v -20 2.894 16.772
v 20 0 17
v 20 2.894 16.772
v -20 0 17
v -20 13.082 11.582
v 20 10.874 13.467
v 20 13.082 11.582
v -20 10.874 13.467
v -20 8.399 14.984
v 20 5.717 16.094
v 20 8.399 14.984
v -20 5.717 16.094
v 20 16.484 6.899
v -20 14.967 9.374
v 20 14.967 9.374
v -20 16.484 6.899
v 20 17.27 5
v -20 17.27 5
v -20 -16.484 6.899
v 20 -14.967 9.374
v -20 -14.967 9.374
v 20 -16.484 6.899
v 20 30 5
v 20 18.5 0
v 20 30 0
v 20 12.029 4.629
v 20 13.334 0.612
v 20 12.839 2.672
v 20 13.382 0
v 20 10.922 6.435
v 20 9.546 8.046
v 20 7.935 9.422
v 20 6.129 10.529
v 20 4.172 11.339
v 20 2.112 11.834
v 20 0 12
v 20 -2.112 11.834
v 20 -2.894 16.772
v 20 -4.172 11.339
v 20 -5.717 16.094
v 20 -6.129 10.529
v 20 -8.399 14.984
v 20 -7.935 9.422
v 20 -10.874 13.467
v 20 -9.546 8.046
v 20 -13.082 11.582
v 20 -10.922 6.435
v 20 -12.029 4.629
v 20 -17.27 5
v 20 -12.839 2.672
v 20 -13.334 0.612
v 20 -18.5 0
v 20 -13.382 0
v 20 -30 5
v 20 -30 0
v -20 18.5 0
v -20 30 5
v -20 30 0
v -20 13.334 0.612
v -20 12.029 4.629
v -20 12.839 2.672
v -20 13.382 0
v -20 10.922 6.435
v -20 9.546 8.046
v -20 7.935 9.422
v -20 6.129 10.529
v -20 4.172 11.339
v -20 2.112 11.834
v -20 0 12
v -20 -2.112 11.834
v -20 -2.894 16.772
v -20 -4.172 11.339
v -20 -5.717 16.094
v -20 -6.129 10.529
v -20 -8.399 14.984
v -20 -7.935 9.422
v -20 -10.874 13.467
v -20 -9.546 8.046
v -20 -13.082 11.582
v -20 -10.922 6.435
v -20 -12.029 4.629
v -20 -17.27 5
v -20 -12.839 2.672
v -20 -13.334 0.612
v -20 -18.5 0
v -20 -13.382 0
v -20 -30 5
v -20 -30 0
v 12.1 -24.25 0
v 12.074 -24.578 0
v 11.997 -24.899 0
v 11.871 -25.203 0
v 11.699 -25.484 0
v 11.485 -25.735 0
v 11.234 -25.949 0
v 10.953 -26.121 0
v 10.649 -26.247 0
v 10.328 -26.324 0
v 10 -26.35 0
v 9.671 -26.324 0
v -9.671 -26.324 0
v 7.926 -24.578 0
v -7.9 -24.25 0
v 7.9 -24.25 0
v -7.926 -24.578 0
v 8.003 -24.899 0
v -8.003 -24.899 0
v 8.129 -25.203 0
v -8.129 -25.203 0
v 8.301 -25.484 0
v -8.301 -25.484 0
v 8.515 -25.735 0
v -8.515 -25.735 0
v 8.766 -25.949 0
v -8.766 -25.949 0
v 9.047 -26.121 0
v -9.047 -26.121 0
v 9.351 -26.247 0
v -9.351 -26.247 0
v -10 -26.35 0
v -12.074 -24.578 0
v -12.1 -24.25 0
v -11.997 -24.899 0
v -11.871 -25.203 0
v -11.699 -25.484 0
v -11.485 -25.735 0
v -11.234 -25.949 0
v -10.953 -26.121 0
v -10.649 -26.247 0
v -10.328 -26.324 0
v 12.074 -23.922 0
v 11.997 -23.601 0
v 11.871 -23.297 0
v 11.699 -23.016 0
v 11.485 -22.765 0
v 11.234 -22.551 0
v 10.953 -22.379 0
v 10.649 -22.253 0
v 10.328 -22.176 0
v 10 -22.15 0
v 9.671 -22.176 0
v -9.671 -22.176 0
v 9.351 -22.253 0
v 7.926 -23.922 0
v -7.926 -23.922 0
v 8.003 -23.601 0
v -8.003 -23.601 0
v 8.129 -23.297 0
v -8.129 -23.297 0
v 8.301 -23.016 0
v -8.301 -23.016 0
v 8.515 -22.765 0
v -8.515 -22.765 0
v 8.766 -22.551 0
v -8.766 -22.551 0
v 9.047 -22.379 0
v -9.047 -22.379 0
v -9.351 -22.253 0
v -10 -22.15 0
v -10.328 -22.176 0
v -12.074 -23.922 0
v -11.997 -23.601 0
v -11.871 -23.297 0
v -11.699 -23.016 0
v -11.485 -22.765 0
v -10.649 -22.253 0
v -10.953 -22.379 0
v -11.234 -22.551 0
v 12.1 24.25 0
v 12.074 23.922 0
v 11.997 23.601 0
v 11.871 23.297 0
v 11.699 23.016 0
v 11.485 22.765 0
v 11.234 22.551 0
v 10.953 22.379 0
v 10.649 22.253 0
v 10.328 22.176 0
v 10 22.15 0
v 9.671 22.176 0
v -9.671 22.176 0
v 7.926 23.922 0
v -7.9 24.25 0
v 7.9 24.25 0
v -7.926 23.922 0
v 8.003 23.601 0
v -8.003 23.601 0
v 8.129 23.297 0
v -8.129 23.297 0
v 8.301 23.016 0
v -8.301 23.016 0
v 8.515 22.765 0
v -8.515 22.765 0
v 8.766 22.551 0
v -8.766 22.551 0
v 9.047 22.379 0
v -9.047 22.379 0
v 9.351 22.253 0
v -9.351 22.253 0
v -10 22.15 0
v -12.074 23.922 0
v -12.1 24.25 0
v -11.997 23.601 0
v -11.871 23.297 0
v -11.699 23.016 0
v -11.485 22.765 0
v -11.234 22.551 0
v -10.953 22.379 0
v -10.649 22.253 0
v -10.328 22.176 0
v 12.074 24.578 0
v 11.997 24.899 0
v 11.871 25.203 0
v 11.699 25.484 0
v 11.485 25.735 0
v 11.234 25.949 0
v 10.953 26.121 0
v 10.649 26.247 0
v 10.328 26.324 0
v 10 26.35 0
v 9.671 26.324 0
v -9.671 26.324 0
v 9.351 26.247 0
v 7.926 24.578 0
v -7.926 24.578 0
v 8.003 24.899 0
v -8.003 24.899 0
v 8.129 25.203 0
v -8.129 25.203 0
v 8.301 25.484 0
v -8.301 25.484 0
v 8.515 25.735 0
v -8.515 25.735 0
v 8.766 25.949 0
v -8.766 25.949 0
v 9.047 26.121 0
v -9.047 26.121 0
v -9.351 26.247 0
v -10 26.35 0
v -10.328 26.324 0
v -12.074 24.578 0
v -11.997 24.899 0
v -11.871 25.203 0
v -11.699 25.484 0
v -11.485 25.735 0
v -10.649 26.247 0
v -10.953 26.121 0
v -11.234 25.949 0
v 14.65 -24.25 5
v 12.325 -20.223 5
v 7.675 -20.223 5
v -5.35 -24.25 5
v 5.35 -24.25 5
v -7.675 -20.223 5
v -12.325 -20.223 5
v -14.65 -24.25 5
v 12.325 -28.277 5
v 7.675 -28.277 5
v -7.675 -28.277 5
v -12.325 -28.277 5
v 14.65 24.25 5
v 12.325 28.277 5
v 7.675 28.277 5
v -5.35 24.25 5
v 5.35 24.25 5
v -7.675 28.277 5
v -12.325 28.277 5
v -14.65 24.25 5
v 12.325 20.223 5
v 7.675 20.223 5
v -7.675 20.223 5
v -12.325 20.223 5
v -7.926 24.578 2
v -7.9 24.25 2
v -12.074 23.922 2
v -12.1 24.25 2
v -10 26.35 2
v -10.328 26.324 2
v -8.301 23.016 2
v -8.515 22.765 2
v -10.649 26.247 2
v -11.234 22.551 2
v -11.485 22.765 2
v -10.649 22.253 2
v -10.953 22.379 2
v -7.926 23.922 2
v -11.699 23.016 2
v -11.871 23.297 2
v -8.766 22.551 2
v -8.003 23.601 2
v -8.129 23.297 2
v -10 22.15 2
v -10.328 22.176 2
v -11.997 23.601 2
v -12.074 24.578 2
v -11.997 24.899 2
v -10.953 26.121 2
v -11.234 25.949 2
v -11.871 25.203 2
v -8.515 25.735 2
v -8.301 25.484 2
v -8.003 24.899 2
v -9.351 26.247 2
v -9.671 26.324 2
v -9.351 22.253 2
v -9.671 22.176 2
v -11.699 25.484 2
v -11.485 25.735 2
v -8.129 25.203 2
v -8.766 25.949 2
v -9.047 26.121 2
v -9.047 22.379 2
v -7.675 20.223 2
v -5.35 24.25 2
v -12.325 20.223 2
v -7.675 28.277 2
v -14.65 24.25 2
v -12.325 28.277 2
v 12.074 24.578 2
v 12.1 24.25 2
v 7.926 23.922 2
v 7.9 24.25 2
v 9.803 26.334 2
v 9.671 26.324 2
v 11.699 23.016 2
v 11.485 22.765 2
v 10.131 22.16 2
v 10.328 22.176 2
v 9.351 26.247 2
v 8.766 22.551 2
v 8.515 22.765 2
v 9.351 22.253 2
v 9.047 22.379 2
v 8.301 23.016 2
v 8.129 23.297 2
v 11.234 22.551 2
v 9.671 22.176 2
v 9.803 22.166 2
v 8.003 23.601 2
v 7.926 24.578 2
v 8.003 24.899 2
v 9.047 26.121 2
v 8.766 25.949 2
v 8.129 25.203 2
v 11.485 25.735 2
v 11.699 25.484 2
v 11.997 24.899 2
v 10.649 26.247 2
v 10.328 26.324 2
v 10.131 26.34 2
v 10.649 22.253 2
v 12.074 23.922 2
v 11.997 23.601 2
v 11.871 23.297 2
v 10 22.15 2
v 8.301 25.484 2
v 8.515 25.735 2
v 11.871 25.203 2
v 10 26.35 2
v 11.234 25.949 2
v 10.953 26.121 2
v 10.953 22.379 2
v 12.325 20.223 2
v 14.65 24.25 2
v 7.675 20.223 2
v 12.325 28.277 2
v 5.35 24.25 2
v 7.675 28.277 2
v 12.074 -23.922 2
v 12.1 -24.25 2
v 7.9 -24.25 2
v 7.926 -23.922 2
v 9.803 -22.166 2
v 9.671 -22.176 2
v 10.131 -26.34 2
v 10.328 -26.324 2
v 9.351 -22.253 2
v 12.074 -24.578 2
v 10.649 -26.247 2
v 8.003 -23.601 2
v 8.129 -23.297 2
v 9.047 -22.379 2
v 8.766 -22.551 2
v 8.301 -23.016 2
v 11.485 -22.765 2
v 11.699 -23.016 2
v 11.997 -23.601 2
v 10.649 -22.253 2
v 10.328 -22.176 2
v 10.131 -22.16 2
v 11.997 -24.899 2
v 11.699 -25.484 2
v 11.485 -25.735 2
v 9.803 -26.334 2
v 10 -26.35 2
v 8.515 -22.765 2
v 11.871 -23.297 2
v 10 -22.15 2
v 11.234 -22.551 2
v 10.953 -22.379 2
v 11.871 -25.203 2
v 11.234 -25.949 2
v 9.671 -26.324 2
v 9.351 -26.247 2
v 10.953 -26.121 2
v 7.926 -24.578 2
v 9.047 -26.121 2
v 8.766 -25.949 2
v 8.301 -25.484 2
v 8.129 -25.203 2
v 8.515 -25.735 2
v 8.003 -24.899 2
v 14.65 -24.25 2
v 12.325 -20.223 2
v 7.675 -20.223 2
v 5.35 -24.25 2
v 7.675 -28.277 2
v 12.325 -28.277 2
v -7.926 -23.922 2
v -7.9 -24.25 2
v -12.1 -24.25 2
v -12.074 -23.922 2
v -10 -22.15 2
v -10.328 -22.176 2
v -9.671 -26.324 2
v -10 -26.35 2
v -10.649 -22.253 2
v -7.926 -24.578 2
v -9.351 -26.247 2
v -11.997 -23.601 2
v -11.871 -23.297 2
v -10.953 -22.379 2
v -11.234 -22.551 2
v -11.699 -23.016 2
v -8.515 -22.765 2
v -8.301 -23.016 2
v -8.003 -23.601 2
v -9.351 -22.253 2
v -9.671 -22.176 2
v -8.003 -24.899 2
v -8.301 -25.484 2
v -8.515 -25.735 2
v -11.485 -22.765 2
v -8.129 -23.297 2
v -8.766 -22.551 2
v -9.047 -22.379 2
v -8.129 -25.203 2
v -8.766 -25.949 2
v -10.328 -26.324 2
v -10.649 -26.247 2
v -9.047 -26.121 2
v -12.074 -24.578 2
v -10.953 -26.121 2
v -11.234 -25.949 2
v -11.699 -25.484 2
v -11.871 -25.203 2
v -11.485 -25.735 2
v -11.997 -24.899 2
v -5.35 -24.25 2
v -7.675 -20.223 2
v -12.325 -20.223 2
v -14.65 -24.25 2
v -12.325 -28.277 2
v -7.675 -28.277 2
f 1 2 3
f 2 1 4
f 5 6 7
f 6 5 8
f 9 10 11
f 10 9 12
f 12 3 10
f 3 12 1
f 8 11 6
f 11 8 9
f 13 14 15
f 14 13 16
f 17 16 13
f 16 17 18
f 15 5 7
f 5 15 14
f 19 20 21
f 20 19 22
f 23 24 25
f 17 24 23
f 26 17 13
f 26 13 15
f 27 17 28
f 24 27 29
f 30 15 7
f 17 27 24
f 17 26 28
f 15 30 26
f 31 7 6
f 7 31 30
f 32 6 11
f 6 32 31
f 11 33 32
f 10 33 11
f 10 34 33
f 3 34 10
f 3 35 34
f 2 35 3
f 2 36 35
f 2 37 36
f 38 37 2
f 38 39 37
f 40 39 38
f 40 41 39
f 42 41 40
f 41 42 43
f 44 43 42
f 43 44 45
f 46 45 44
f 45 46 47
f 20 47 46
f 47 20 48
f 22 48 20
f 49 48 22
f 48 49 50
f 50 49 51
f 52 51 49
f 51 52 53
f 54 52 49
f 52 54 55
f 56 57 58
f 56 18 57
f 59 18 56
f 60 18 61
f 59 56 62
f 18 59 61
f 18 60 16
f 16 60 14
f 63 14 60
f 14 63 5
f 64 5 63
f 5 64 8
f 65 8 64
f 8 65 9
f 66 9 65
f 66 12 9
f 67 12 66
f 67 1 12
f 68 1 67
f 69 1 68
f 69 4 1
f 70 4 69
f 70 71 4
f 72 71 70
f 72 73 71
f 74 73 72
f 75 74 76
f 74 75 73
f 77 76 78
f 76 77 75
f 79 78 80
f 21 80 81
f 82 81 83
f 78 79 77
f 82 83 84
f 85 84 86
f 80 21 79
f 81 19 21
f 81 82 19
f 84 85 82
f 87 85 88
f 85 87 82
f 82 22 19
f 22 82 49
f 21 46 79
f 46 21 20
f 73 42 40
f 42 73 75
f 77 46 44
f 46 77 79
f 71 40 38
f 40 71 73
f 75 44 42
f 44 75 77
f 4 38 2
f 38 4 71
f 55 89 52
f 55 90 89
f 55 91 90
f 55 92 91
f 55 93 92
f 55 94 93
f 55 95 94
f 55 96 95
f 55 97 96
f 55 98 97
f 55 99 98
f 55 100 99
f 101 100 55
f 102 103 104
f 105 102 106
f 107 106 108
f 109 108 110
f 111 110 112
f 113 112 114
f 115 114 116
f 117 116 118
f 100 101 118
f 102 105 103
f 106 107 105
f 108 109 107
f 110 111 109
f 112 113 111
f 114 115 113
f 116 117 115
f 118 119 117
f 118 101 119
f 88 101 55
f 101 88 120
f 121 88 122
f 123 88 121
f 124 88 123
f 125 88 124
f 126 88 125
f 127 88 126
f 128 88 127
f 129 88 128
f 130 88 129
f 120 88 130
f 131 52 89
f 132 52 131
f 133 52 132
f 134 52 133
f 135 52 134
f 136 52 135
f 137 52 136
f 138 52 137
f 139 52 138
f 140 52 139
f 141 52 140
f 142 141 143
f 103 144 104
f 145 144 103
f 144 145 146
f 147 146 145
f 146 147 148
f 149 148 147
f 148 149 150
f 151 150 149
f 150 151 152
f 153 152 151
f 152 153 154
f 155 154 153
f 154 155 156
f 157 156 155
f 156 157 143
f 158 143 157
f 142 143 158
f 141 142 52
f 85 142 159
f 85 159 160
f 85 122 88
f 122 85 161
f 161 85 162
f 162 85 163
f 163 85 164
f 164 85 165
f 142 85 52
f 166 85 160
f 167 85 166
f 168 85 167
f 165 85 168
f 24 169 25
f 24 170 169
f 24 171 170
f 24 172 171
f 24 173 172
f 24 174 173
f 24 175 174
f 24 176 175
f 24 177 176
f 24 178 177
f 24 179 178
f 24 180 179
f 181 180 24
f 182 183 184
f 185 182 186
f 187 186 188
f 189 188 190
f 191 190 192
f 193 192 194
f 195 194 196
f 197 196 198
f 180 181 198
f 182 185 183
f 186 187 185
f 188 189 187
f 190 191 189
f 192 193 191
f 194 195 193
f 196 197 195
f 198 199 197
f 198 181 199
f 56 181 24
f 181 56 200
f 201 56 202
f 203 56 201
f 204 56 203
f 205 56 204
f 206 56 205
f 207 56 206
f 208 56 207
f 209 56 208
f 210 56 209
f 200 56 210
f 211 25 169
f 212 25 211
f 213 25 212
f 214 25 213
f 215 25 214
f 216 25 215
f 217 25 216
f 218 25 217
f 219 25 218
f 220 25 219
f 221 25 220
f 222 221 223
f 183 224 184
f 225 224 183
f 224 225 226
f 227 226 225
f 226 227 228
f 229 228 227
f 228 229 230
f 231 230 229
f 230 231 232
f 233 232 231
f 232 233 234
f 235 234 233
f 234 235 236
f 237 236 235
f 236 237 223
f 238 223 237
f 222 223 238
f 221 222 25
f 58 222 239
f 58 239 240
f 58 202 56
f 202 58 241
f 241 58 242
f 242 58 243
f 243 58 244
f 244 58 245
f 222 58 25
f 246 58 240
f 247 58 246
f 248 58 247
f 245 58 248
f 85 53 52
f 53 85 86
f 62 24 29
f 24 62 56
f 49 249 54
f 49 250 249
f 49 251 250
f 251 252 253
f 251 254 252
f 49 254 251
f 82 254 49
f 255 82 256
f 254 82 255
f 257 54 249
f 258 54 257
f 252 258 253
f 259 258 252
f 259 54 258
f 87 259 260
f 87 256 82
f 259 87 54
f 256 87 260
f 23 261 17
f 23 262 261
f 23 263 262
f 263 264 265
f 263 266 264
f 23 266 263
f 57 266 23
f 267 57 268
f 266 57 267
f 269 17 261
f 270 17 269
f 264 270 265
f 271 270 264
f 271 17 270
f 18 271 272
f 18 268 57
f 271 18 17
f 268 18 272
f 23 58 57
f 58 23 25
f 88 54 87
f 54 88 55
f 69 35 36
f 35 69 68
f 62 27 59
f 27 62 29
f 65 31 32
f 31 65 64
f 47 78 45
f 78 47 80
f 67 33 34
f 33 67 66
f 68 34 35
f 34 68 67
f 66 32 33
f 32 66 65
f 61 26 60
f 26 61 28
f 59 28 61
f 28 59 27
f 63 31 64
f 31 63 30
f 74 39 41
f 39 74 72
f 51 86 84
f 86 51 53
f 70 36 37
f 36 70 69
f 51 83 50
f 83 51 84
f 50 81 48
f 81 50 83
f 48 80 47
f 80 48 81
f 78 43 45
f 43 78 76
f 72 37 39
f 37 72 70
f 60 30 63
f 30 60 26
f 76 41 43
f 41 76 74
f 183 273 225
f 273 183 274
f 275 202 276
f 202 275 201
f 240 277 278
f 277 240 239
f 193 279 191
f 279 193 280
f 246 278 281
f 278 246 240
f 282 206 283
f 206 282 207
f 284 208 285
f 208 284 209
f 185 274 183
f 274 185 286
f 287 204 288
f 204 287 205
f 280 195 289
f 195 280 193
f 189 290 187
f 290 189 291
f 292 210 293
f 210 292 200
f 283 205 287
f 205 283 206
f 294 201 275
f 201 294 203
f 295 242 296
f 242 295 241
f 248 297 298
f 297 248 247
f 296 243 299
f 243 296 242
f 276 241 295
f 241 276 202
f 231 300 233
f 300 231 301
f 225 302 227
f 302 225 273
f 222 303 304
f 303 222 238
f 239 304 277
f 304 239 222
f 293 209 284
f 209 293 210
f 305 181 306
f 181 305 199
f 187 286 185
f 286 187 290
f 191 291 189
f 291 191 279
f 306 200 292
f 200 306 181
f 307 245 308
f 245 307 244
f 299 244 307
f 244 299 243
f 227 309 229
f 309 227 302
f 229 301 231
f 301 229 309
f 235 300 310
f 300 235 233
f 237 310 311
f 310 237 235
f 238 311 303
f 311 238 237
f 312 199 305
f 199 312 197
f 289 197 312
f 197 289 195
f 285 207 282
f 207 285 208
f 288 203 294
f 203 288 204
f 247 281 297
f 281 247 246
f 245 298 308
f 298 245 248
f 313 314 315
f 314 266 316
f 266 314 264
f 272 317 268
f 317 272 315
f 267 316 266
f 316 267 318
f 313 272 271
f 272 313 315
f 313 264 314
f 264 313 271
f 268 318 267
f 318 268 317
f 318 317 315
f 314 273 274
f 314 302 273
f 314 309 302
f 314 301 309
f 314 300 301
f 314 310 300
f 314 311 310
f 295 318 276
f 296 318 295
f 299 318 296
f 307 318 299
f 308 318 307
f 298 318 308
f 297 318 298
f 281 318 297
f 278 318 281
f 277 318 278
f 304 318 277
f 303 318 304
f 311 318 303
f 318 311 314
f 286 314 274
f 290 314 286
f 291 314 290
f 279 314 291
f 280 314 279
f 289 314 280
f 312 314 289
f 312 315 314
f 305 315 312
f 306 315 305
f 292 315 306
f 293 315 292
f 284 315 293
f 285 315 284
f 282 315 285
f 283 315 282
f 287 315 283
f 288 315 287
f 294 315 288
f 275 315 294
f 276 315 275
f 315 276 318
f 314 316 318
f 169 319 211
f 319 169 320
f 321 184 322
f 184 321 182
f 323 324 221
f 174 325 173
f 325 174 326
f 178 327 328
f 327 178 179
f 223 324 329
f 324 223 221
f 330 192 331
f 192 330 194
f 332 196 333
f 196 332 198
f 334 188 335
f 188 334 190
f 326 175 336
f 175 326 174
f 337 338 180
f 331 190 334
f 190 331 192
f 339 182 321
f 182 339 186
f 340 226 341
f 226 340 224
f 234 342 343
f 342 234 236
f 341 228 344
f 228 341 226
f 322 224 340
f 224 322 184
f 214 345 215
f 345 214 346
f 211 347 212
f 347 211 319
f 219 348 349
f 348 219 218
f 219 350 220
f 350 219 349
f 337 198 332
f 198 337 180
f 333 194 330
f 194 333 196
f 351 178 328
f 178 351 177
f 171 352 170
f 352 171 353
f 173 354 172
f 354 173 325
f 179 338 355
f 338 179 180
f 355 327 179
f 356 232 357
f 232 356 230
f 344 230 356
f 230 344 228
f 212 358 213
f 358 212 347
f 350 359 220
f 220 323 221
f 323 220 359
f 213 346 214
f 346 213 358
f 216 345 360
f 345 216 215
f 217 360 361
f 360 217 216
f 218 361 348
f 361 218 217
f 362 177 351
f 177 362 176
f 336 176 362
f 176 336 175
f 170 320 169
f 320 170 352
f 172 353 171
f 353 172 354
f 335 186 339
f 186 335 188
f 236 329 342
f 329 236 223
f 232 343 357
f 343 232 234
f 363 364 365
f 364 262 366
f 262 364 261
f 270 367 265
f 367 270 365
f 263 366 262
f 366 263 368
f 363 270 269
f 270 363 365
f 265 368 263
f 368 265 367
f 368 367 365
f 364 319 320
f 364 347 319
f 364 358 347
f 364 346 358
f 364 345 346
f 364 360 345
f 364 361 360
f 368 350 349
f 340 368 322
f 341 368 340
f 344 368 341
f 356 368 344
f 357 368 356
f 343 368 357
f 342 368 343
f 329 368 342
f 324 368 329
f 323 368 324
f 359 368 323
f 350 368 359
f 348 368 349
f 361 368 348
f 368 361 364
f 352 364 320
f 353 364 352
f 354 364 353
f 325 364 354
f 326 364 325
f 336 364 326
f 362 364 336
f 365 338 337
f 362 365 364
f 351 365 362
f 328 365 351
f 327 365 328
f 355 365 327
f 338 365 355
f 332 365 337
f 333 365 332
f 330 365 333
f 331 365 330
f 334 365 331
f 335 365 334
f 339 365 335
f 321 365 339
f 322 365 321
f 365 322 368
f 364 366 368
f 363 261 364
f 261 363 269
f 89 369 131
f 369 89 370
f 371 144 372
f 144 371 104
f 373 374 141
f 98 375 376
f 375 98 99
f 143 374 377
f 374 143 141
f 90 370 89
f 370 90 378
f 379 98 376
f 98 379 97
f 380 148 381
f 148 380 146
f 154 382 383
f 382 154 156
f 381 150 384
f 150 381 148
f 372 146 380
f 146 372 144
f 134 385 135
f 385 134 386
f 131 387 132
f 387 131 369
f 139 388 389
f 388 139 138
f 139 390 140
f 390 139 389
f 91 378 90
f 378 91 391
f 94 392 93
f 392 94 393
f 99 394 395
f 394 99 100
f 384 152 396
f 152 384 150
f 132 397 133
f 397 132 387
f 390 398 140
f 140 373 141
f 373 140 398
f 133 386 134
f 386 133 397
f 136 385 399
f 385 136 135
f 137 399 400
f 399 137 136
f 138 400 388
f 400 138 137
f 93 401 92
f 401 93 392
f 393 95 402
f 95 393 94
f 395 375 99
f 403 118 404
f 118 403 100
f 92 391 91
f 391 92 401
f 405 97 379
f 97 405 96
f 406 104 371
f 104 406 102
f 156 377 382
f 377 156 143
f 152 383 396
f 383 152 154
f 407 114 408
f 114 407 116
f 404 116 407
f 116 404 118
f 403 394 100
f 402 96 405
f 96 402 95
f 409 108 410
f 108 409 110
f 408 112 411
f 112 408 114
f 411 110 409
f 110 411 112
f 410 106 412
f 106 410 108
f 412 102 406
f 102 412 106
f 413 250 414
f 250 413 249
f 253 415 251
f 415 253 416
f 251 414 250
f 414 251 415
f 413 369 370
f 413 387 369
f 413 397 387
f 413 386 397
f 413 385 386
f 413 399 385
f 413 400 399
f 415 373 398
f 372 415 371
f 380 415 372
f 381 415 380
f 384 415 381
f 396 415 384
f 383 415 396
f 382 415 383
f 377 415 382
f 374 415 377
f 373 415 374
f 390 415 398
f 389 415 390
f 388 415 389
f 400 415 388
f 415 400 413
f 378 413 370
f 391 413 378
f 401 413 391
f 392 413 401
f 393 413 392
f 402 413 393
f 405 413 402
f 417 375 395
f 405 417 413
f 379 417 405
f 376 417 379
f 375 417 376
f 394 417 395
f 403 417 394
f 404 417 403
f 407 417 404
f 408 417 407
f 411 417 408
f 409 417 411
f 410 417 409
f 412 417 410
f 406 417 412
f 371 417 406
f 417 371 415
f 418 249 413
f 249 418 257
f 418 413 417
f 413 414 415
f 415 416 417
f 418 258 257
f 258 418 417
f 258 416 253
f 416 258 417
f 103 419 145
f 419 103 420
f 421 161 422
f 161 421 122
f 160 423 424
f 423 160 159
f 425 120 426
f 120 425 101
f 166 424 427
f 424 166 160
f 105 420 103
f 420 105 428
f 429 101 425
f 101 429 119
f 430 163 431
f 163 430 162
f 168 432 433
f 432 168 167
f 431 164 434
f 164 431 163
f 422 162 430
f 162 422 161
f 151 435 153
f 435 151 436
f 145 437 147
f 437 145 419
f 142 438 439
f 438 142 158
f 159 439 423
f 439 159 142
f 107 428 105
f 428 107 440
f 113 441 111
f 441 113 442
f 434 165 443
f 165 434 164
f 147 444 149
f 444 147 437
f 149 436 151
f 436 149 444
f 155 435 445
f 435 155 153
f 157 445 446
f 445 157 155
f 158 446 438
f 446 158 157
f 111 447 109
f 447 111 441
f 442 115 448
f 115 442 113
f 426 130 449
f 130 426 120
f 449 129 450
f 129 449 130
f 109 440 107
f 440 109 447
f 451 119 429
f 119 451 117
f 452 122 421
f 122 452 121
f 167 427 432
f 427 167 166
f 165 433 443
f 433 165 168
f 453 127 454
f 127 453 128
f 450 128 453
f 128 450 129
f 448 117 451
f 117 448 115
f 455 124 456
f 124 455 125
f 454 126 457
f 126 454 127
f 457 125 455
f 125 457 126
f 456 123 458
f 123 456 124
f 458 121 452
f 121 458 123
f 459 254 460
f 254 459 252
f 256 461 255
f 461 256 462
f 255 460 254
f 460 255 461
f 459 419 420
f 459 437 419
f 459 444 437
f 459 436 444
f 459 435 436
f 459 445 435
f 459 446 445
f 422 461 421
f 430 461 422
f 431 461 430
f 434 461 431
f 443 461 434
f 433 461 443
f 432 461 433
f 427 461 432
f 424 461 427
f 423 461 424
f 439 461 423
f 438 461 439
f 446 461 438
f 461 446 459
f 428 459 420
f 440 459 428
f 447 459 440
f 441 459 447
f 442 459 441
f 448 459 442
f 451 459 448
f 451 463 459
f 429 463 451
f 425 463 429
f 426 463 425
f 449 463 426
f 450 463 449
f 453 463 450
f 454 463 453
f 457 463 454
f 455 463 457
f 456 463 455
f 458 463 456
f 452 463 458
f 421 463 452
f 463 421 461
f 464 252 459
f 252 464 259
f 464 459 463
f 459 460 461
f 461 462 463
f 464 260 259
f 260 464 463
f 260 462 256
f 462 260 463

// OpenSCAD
// file: ../SRC/ISLHOLDER01A_D02.scad
$fn=40; // model faces resolution.
include <../configuration.scad>


//Drzak na sloup - cast bez drzaku anemometru
module ISLHOLDER01A_D02(){
	
difference()
    {
    union()
        {
        //základní válec
        cylinder(h=D02_vyska_uchytky,r=(D02_prumer_obruby+2*D02_sila_materialu)/2,center=true);
		//úchytové plošky		
        translate([D02_dotahova_vzdalenost+D02_sila_materialu/2,0,0]){cube([D02_sila_materialu,D02_delka_celeho_uchytu,D02_vyska_uchytky],center=true);}
		}
    
    //válec na odečet
    cylinder(h=D02_vyska_uchytky+0.01,r=D02_prumer_obruby/2,center=true);     
	        
    //kvádr na odecet
	translate([D02_dotahova_vzdalenost-(D02_prumer_obruby+2*D02_sila_materialu)/2,0,0]){cube([D02_prumer_obruby+2*D02_sila_materialu,D02_prumer_obruby+2*D02_sila_materialu,D02_vyska_uchytky+0.01],center=true);}
		
	//otvory na sroub
	translate([D02_dotahova_vzdalenost,(D02_delka_celeho_uchytu/2-D02_prumer_obruby/2-D02_sila_materialu)/2+D02_prumer_obruby/2+D02_sila_materialu,D02_vyska_uchytky/4]){rotate([0,90,0]){cylinder(h=D02_sila_materialu+0.01,r=D02_prumer_uchytneho_sroubu/2);}}
    
     //drzak matky
    translate([D02_dotahova_vzdalenost+D02_sila_materialu-D02_vyska_matky,(D02_delka_celeho_uchytu/2-D02_prumer_obruby/2-D02_sila_materialu)/2+D02_prumer_obruby/2+D02_sila_materialu,D02_vyska_uchytky/4]){rotate([0,90,0]){ cylinder (h = D02_vyska_matky+0.01, r= (D02_sirka_matky+0.2)/2, $fn=6);}}
   
     
        
    translate([D02_dotahova_vzdalenost,(D02_delka_celeho_uchytu/2-D02_prumer_obruby/2-D02_sila_materialu)/2+D02_prumer_obruby/2+D02_sila_materialu,-D02_vyska_uchytky/4]){rotate([0,90,0]){cylinder(h=D02_sila_materialu+0.01,r=D02_prumer_uchytneho_sroubu/2);}}
    
     //drzak matky
    translate([D02_dotahova_vzdalenost+D02_sila_materialu-D02_vyska_matky,(D02_delka_celeho_uchytu/2-D02_prumer_obruby/2-D02_sila_materialu)/2+D02_prumer_obruby/2+D02_sila_materialu,-D02_vyska_uchytky/4]){rotate([0,90,0]){ cylinder (h = D02_vyska_matky+0.01, r= (D02_sirka_matky+0.2)/2, $fn=6);}}
        
	translate([D02_dotahova_vzdalenost,-((D02_delka_celeho_uchytu/2-D02_prumer_obruby/2-D02_sila_materialu)/2+D02_prumer_obruby/2+D02_sila_materialu),-D02_vyska_uchytky/4]){rotate([0,90,0]){cylinder(h=D02_sila_materialu+0.01,r=D02_prumer_uchytneho_sroubu/2);}}
    
     //drzak matky
    translate([D02_dotahova_vzdalenost+D02_sila_materialu-D02_vyska_matky,-((D02_delka_celeho_uchytu/2-D02_prumer_obruby/2-D02_sila_materialu)/2+D02_prumer_obruby/2+D02_sila_materialu),-D02_vyska_uchytky/4]){rotate([0,90,0]){ cylinder (h = D02_vyska_matky+0.01, r= (D02_sirka_matky+0.2)/2, $fn=6);}}

    translate([D02_dotahova_vzdalenost,-((D02_delka_celeho_uchytu/2-D02_prumer_obruby/2-D02_sila_materialu)/2+D02_prumer_obruby/2+D02_sila_materialu),D02_vyska_uchytky/4]){rotate([0,90,0]){cylinder(h=D02_sila_materialu+0.01,r=D02_prumer_uchytneho_sroubu/2);}}	
    
     //drzak matky
    translate([D02_dotahova_vzdalenost+D02_sila_materialu-D02_vyska_matky,-((D02_delka_celeho_uchytu/2-D02_prumer_obruby/2-D02_sila_materialu)/2+D02_prumer_obruby/2+D02_sila_materialu),D02_vyska_uchytky/4]){rotate([0,90,0]){ cylinder (h = D02_vyska_matky+0.01, r= (D02_sirka_matky+0.2)/2, $fn=6);}}
	
    }
}

module ISLHOLDER01A_D02_2(){
	
difference()
    {
    union()
        {
        //základní válec
        cylinder(h=D02_vyska_uchytky,r=(D02_prumer_obruby+2*D02_sila_materialu)/2,center=true);
		//úchytové plošky		
        translate([D02_dotahova_vzdalenost+D02_sila_materialu/2,0,0]){cube([D02_sila_materialu,D02_delka_celeho_uchytu,D02_vyska_uchytky],center=true);}
		}
    
    //válec na odečet
    cylinder(h=D02_vyska_uchytky+0.01,r=D02_prumer_obruby/2,center=true);     
	        
    //kvádr na odecet
	translate([D02_dotahova_vzdalenost-(D02_prumer_obruby+2*D02_sila_materialu)/2,0,0]){cube([D02_prumer_obruby+2*D02_sila_materialu,D02_prumer_obruby+2*D02_sila_materialu,D02_vyska_uchytky+0.01],center=true);}
		
	//otvory na sroub
	translate([D02_dotahova_vzdalenost,(D02_delka_celeho_uchytu/2-D02_prumer_obruby/2-D02_sila_materialu)/2+D02_prumer_obruby/2+D02_sila_materialu,D02_vyska_uchytky/4]){rotate([0,90,0]){cylinder(h=D02_sila_materialu+0.01,r=D02_prumer_uchytneho_sroubu/2);}}
    
    
   
     
        
    translate([D02_dotahova_vzdalenost,(D02_delka_celeho_uchytu/2-D02_prumer_obruby/2-D02_sila_materialu)/2+D02_prumer_obruby/2+D02_sila_materialu,-D02_vyska_uchytky/4]){rotate([0,90,0]){cylinder(h=D02_sila_materialu+0.01,r=D02_prumer_uchytneho_sroubu/2);}}
    
     
        
	translate([D02_dotahova_vzdalenost,-((D02_delka_celeho_uchytu/2-D02_prumer_obruby/2-D02_sila_materialu)/2+D02_prumer_obruby/2+D02_sila_materialu),-D02_vyska_uchytky/4]){rotate([0,90,0]){cylinder(h=D02_sila_materialu+0.01,r=D02_prumer_uchytneho_sroubu/2);}}
    
    

    translate([D02_dotahova_vzdalenost,-((D02_delka_celeho_uchytu/2-D02_prumer_obruby/2-D02_sila_materialu)/2+D02_prumer_obruby/2+D02_sila_materialu),D02_vyska_uchytky/4]){rotate([0,90,0]){cylinder(h=D02_sila_materialu+0.01,r=D02_prumer_uchytneho_sroubu/2);}}	
    
    
	
    }
}


//ISLHOLDER01A_D02();
// file: ../configuration.scad
$fn=40; // model faces resolution.

//Parametry pro D01 a D02
//nastavení držáku na sloup
//----------------------------------------------------------------
//----------------------------------------------------------------
//není potřeba měnit
S01_prumer_vnitrni=40;
S01_tolerance_zavit=1.5;

S01_sila_materialu=1.3; //sila výtuhy

//D01 - uchyt velky
D01_material_pod_zavitem=5;
D01_material_za_zavitem=3;
D01_material_pred_zavitem=2;
D01_delka_tyce=30;
D01_sirka_tyce=15;

//D02 - uchyt na sloup
D02_sila_materialu=5;
D02_vyska_uchytky=40;
D02_prumer_obruby=27; //3/4 trubka
D02_delka_celeho_uchytu=60;
D02_dotahova_vzdalenost=1.5;
D02_prumer_uchytneho_sroubu=4.2;
D02_sirka_matky=9.1; //pro M4
D02_vyska_matky=3;


D05_vyska_drzaku_senzoru=35;
D05_prumer_zkumavky_vnitrni=22;
D05_vyska_podstavce=10;
D05_sirka_otvoru_na_kabel=5;
// main file
$fn=100; // model faces resolution.
include <../configuration.scad>
use <../SRC/ISLHOLDER01A_D02.scad>

rotate([0, -90, 0])
    translate([-D02_dotahova_vzdalenost,0,0])
        ISLHOLDER01A_D02();

            
